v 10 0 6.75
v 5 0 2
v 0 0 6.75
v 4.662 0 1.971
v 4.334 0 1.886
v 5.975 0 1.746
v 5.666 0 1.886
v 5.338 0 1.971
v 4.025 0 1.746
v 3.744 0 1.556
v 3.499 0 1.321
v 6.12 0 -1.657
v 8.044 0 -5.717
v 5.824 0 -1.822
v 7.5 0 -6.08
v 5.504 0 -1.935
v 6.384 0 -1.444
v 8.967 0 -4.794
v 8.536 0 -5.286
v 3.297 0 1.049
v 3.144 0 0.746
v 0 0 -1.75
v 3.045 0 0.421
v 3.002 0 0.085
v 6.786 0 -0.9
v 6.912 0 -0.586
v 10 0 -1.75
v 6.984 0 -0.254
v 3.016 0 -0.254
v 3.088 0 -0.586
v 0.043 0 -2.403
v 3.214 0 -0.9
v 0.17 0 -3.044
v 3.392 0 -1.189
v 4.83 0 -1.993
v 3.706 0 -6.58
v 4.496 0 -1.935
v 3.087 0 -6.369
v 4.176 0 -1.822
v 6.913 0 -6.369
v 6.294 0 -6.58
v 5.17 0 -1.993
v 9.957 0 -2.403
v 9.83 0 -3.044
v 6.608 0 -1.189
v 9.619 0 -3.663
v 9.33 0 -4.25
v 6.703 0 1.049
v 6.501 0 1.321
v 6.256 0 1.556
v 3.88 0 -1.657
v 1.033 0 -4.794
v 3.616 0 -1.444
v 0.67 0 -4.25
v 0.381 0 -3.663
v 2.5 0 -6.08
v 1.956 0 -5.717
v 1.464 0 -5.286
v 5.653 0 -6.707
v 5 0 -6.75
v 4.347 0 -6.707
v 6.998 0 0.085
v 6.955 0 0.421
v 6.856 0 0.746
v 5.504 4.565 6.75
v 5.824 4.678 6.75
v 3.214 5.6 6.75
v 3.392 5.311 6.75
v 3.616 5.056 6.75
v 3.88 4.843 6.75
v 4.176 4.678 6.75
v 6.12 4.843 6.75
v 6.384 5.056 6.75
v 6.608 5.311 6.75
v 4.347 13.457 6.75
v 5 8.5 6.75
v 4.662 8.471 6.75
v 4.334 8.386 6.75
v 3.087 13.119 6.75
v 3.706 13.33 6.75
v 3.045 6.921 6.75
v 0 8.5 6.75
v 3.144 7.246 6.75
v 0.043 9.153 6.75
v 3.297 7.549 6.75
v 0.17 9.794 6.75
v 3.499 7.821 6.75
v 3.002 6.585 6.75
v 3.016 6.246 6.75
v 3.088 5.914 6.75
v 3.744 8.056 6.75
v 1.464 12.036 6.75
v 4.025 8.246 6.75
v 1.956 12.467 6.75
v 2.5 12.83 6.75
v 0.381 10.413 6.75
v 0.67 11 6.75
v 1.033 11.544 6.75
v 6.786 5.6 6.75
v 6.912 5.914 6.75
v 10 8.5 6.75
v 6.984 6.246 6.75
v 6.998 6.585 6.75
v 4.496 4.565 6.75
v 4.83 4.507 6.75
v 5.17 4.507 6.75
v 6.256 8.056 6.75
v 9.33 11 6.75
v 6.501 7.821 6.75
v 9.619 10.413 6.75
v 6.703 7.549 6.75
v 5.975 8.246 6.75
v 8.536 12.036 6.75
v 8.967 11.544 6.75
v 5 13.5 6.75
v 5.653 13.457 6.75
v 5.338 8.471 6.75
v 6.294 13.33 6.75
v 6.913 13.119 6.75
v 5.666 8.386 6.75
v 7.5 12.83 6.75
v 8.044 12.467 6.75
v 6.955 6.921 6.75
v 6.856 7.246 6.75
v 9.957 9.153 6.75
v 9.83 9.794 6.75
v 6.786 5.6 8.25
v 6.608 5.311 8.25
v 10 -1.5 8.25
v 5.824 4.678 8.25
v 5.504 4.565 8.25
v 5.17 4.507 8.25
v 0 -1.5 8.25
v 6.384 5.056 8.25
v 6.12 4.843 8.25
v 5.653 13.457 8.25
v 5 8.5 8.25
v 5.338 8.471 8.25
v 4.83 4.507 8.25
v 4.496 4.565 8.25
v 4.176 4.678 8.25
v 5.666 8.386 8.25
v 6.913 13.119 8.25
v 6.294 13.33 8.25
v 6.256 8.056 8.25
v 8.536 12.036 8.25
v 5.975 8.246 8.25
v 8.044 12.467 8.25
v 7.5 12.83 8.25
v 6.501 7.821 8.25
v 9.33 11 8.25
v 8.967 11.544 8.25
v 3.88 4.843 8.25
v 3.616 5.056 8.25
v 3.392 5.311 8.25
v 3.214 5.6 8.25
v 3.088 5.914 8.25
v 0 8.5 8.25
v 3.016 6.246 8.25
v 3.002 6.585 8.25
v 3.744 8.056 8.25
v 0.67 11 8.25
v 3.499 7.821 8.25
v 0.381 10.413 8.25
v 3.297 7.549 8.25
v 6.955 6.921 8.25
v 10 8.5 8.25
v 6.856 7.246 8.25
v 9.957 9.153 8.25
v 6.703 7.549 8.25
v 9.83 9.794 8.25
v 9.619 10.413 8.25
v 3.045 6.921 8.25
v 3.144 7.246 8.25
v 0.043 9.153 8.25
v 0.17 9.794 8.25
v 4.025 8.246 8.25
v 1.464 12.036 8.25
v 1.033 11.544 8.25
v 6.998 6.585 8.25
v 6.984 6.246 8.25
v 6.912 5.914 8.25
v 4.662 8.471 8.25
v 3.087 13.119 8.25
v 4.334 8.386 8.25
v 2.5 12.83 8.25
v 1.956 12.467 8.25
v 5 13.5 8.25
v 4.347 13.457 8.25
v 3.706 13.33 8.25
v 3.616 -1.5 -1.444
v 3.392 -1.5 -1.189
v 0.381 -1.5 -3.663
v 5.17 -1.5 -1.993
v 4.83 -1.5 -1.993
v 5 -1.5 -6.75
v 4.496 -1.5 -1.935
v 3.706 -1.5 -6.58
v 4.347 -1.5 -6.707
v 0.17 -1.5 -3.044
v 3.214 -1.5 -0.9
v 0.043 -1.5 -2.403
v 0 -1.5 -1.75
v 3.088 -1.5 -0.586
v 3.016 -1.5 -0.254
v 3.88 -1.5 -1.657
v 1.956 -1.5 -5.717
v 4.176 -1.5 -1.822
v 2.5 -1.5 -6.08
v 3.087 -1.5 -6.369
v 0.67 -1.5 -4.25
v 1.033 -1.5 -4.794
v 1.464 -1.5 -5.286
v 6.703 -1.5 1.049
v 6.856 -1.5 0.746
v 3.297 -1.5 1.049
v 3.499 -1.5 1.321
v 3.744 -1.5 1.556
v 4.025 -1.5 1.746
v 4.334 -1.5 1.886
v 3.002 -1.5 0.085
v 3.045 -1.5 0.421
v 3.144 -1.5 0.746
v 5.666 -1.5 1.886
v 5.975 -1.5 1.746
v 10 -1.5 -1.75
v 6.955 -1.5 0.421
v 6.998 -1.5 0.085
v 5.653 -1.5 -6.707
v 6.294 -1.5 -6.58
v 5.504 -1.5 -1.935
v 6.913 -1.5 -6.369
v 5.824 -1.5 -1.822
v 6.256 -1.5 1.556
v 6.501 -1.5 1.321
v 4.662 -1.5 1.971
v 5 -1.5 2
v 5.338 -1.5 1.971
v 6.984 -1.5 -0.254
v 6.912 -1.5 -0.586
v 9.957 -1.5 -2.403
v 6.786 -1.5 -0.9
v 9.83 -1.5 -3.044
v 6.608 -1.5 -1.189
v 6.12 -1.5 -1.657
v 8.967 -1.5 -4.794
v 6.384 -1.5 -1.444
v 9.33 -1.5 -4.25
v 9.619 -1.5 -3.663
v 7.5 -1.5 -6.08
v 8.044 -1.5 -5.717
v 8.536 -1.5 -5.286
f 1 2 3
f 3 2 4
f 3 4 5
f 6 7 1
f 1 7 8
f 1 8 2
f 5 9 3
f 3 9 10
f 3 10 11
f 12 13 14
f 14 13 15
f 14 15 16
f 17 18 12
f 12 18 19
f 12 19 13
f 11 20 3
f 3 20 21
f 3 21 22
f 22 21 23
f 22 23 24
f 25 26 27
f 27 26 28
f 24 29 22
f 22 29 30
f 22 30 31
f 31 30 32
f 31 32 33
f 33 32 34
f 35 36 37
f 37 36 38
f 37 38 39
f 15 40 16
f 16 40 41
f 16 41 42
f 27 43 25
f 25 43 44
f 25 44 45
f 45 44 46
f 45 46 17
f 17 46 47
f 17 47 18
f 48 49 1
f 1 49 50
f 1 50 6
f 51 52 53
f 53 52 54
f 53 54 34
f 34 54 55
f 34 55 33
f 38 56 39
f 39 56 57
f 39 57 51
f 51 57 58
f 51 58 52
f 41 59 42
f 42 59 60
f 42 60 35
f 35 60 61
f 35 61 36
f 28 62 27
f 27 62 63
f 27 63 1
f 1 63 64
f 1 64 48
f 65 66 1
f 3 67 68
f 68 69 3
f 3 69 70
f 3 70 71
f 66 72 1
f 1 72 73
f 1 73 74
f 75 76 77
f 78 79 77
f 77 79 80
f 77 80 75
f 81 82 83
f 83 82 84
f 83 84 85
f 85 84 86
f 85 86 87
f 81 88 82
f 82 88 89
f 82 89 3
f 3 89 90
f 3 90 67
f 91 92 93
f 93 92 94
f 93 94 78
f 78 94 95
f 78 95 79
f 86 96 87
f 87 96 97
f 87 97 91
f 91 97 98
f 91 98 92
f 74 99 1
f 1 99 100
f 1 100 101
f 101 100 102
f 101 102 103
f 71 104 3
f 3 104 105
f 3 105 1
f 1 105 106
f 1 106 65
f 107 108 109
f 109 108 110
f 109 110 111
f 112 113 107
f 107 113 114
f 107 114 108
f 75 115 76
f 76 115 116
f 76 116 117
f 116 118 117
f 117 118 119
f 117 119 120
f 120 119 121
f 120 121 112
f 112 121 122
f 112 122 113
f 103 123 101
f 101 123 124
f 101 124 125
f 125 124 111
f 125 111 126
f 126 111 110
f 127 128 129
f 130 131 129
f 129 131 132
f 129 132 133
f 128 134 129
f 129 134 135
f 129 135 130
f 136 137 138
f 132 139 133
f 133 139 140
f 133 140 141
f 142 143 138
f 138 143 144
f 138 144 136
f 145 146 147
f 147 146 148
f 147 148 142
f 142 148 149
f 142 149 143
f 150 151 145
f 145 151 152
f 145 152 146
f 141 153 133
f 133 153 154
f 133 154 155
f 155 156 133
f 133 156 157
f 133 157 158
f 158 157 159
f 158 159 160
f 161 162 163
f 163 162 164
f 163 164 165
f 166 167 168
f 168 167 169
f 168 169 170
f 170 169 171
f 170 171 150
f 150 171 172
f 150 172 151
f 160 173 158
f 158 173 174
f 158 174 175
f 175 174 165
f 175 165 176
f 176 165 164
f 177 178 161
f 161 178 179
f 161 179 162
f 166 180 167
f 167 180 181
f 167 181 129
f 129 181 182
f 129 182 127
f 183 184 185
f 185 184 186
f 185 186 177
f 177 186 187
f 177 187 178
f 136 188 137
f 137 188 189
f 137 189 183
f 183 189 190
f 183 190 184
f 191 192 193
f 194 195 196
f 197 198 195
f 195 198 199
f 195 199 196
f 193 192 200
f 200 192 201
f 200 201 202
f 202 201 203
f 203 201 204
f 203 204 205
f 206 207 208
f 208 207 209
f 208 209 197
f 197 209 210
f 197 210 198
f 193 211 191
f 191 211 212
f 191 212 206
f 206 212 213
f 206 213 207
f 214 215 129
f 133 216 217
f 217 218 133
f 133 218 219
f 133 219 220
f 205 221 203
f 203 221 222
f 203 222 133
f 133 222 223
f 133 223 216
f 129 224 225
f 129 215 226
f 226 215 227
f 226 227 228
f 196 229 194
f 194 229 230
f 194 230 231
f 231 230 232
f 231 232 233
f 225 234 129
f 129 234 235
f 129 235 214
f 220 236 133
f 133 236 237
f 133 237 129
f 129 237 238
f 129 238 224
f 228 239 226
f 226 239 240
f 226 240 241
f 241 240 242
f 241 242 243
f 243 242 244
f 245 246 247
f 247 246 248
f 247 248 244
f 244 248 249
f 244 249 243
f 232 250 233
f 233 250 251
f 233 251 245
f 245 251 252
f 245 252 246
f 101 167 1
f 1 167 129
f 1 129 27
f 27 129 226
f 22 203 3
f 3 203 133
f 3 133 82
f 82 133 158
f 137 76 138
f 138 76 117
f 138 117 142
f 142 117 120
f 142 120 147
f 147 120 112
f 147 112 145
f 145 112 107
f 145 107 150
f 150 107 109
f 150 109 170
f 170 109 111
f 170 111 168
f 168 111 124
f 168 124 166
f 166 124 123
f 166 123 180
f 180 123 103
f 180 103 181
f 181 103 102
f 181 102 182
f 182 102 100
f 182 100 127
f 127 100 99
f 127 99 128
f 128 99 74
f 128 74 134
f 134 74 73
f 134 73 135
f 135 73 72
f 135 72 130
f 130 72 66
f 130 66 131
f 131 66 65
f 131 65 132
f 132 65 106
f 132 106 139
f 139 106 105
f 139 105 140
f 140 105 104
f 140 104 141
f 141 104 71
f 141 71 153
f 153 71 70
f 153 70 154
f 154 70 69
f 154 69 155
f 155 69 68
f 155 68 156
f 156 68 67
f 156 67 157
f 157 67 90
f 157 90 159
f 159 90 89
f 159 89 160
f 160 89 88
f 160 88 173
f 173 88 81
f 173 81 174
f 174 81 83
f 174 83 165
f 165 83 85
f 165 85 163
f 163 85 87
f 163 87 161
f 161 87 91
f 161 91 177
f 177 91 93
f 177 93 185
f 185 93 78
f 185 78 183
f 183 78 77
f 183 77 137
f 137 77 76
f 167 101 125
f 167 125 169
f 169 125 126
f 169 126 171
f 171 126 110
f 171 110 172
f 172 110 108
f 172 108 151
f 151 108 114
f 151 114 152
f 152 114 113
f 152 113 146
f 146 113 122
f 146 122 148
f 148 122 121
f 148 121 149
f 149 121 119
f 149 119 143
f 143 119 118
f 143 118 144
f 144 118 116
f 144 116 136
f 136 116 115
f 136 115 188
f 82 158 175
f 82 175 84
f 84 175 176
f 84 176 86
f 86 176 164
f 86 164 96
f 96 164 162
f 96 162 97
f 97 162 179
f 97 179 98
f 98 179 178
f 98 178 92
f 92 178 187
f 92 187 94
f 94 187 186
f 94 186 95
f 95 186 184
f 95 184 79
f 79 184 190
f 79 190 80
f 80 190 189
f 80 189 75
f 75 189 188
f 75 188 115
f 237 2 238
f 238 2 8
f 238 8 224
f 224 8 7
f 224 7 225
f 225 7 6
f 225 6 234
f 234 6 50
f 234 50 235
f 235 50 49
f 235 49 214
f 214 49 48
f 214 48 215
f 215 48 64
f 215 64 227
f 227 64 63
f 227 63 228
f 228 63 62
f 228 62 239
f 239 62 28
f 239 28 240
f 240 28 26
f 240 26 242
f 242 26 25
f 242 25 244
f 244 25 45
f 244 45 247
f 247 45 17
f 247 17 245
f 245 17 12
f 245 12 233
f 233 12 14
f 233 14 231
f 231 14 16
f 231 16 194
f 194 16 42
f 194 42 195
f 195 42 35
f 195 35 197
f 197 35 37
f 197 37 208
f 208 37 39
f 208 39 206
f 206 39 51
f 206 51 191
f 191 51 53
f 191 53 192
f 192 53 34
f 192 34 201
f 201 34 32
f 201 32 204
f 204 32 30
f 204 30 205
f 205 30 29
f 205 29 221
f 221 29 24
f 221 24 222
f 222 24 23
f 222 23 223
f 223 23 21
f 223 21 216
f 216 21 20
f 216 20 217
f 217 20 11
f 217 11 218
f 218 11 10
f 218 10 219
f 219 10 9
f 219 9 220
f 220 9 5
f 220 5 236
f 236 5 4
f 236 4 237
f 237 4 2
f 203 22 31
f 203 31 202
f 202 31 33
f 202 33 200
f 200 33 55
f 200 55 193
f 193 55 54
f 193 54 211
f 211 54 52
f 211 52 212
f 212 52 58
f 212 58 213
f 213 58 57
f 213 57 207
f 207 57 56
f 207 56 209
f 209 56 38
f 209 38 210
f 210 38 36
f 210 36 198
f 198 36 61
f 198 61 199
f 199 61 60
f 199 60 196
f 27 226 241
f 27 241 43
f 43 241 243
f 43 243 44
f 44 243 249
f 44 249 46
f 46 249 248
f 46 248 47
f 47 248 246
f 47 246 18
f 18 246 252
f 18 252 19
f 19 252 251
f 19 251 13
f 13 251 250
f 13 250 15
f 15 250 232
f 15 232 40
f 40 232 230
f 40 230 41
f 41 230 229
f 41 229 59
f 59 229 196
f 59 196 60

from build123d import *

# Parameters (mm, degrees)
BOSS_EXTRU_1_DEPTH      = 10
ESQUISSE2_R             = 2
ENL_V_MAT_EXTRU_1_DEPTH = 22.552262062
CONG_1_R                = 5
ESQUISSE3_R             = 2
ENL_V_MAT_EXTRU_2_DEPTH = 19.716636984
CONG_2_R                = 5


with BuildPart() as part:
    # Esquisse1 → Boss.-Extru.1 (new body)
    with BuildSketch(Plane(origin=(0, 0, 0), x_dir=(0, 0, -1), z_dir=(1, 0, 0))):
        Polygon((6.75, 0), (-6.75, 0), (-6.75, 13.5), (-8.25, 13.5), (-8.25, -1.5), (6.75, -1.5), align=None)
    extrude(amount=BOSS_EXTRU_1_DEPTH)

    # Esquisse2 → Enlèv. mat.-Extru.1 (cut, through all)
    with BuildSketch(Plane(origin=(0, 0, 6.75), x_dir=(-1, 0, 0), z_dir=(0, 0, -1))):
        with Locations(Location((-5, 6.5, 0), (0, 0, 90))):
            Circle(ESQUISSE2_R)
    extrude(amount=-ENL_V_MAT_EXTRU_1_DEPTH, mode=Mode.SUBTRACT)

    # Congé1
    cong_1_edges = [part.edges().sort_by_distance(p)[0] for p in [
        (0, 13.5, 7.5),
        (10, 13.5, 7.5),
    ]]
    fillet(cong_1_edges, radius=CONG_1_R - 0.0001)  # a hair under: the kernel refuses the full size

    # Esquisse3 → Enlèv. mat.-Extru.2 (cut, through all)
    with BuildSketch(Plane(origin=(0, 0, 0), x_dir=(1, 0, 0), z_dir=(0, 1, 0))):
        with Locations(Location((5, 0, 0), (0, 0, 270))):
            Circle(ESQUISSE3_R)
    extrude(amount=-ENL_V_MAT_EXTRU_2_DEPTH, mode=Mode.SUBTRACT)

    # Congé2
    cong_2_edges = [part.edges().sort_by_distance(p)[0] for p in [
        (10, -0.75, -6.75),
        (0, -0.75, -6.75),
    ]]
    fillet(cong_2_edges, radius=CONG_2_R - 0.0001)  # a hair under: the kernel refuses the full size


solid = part.part
